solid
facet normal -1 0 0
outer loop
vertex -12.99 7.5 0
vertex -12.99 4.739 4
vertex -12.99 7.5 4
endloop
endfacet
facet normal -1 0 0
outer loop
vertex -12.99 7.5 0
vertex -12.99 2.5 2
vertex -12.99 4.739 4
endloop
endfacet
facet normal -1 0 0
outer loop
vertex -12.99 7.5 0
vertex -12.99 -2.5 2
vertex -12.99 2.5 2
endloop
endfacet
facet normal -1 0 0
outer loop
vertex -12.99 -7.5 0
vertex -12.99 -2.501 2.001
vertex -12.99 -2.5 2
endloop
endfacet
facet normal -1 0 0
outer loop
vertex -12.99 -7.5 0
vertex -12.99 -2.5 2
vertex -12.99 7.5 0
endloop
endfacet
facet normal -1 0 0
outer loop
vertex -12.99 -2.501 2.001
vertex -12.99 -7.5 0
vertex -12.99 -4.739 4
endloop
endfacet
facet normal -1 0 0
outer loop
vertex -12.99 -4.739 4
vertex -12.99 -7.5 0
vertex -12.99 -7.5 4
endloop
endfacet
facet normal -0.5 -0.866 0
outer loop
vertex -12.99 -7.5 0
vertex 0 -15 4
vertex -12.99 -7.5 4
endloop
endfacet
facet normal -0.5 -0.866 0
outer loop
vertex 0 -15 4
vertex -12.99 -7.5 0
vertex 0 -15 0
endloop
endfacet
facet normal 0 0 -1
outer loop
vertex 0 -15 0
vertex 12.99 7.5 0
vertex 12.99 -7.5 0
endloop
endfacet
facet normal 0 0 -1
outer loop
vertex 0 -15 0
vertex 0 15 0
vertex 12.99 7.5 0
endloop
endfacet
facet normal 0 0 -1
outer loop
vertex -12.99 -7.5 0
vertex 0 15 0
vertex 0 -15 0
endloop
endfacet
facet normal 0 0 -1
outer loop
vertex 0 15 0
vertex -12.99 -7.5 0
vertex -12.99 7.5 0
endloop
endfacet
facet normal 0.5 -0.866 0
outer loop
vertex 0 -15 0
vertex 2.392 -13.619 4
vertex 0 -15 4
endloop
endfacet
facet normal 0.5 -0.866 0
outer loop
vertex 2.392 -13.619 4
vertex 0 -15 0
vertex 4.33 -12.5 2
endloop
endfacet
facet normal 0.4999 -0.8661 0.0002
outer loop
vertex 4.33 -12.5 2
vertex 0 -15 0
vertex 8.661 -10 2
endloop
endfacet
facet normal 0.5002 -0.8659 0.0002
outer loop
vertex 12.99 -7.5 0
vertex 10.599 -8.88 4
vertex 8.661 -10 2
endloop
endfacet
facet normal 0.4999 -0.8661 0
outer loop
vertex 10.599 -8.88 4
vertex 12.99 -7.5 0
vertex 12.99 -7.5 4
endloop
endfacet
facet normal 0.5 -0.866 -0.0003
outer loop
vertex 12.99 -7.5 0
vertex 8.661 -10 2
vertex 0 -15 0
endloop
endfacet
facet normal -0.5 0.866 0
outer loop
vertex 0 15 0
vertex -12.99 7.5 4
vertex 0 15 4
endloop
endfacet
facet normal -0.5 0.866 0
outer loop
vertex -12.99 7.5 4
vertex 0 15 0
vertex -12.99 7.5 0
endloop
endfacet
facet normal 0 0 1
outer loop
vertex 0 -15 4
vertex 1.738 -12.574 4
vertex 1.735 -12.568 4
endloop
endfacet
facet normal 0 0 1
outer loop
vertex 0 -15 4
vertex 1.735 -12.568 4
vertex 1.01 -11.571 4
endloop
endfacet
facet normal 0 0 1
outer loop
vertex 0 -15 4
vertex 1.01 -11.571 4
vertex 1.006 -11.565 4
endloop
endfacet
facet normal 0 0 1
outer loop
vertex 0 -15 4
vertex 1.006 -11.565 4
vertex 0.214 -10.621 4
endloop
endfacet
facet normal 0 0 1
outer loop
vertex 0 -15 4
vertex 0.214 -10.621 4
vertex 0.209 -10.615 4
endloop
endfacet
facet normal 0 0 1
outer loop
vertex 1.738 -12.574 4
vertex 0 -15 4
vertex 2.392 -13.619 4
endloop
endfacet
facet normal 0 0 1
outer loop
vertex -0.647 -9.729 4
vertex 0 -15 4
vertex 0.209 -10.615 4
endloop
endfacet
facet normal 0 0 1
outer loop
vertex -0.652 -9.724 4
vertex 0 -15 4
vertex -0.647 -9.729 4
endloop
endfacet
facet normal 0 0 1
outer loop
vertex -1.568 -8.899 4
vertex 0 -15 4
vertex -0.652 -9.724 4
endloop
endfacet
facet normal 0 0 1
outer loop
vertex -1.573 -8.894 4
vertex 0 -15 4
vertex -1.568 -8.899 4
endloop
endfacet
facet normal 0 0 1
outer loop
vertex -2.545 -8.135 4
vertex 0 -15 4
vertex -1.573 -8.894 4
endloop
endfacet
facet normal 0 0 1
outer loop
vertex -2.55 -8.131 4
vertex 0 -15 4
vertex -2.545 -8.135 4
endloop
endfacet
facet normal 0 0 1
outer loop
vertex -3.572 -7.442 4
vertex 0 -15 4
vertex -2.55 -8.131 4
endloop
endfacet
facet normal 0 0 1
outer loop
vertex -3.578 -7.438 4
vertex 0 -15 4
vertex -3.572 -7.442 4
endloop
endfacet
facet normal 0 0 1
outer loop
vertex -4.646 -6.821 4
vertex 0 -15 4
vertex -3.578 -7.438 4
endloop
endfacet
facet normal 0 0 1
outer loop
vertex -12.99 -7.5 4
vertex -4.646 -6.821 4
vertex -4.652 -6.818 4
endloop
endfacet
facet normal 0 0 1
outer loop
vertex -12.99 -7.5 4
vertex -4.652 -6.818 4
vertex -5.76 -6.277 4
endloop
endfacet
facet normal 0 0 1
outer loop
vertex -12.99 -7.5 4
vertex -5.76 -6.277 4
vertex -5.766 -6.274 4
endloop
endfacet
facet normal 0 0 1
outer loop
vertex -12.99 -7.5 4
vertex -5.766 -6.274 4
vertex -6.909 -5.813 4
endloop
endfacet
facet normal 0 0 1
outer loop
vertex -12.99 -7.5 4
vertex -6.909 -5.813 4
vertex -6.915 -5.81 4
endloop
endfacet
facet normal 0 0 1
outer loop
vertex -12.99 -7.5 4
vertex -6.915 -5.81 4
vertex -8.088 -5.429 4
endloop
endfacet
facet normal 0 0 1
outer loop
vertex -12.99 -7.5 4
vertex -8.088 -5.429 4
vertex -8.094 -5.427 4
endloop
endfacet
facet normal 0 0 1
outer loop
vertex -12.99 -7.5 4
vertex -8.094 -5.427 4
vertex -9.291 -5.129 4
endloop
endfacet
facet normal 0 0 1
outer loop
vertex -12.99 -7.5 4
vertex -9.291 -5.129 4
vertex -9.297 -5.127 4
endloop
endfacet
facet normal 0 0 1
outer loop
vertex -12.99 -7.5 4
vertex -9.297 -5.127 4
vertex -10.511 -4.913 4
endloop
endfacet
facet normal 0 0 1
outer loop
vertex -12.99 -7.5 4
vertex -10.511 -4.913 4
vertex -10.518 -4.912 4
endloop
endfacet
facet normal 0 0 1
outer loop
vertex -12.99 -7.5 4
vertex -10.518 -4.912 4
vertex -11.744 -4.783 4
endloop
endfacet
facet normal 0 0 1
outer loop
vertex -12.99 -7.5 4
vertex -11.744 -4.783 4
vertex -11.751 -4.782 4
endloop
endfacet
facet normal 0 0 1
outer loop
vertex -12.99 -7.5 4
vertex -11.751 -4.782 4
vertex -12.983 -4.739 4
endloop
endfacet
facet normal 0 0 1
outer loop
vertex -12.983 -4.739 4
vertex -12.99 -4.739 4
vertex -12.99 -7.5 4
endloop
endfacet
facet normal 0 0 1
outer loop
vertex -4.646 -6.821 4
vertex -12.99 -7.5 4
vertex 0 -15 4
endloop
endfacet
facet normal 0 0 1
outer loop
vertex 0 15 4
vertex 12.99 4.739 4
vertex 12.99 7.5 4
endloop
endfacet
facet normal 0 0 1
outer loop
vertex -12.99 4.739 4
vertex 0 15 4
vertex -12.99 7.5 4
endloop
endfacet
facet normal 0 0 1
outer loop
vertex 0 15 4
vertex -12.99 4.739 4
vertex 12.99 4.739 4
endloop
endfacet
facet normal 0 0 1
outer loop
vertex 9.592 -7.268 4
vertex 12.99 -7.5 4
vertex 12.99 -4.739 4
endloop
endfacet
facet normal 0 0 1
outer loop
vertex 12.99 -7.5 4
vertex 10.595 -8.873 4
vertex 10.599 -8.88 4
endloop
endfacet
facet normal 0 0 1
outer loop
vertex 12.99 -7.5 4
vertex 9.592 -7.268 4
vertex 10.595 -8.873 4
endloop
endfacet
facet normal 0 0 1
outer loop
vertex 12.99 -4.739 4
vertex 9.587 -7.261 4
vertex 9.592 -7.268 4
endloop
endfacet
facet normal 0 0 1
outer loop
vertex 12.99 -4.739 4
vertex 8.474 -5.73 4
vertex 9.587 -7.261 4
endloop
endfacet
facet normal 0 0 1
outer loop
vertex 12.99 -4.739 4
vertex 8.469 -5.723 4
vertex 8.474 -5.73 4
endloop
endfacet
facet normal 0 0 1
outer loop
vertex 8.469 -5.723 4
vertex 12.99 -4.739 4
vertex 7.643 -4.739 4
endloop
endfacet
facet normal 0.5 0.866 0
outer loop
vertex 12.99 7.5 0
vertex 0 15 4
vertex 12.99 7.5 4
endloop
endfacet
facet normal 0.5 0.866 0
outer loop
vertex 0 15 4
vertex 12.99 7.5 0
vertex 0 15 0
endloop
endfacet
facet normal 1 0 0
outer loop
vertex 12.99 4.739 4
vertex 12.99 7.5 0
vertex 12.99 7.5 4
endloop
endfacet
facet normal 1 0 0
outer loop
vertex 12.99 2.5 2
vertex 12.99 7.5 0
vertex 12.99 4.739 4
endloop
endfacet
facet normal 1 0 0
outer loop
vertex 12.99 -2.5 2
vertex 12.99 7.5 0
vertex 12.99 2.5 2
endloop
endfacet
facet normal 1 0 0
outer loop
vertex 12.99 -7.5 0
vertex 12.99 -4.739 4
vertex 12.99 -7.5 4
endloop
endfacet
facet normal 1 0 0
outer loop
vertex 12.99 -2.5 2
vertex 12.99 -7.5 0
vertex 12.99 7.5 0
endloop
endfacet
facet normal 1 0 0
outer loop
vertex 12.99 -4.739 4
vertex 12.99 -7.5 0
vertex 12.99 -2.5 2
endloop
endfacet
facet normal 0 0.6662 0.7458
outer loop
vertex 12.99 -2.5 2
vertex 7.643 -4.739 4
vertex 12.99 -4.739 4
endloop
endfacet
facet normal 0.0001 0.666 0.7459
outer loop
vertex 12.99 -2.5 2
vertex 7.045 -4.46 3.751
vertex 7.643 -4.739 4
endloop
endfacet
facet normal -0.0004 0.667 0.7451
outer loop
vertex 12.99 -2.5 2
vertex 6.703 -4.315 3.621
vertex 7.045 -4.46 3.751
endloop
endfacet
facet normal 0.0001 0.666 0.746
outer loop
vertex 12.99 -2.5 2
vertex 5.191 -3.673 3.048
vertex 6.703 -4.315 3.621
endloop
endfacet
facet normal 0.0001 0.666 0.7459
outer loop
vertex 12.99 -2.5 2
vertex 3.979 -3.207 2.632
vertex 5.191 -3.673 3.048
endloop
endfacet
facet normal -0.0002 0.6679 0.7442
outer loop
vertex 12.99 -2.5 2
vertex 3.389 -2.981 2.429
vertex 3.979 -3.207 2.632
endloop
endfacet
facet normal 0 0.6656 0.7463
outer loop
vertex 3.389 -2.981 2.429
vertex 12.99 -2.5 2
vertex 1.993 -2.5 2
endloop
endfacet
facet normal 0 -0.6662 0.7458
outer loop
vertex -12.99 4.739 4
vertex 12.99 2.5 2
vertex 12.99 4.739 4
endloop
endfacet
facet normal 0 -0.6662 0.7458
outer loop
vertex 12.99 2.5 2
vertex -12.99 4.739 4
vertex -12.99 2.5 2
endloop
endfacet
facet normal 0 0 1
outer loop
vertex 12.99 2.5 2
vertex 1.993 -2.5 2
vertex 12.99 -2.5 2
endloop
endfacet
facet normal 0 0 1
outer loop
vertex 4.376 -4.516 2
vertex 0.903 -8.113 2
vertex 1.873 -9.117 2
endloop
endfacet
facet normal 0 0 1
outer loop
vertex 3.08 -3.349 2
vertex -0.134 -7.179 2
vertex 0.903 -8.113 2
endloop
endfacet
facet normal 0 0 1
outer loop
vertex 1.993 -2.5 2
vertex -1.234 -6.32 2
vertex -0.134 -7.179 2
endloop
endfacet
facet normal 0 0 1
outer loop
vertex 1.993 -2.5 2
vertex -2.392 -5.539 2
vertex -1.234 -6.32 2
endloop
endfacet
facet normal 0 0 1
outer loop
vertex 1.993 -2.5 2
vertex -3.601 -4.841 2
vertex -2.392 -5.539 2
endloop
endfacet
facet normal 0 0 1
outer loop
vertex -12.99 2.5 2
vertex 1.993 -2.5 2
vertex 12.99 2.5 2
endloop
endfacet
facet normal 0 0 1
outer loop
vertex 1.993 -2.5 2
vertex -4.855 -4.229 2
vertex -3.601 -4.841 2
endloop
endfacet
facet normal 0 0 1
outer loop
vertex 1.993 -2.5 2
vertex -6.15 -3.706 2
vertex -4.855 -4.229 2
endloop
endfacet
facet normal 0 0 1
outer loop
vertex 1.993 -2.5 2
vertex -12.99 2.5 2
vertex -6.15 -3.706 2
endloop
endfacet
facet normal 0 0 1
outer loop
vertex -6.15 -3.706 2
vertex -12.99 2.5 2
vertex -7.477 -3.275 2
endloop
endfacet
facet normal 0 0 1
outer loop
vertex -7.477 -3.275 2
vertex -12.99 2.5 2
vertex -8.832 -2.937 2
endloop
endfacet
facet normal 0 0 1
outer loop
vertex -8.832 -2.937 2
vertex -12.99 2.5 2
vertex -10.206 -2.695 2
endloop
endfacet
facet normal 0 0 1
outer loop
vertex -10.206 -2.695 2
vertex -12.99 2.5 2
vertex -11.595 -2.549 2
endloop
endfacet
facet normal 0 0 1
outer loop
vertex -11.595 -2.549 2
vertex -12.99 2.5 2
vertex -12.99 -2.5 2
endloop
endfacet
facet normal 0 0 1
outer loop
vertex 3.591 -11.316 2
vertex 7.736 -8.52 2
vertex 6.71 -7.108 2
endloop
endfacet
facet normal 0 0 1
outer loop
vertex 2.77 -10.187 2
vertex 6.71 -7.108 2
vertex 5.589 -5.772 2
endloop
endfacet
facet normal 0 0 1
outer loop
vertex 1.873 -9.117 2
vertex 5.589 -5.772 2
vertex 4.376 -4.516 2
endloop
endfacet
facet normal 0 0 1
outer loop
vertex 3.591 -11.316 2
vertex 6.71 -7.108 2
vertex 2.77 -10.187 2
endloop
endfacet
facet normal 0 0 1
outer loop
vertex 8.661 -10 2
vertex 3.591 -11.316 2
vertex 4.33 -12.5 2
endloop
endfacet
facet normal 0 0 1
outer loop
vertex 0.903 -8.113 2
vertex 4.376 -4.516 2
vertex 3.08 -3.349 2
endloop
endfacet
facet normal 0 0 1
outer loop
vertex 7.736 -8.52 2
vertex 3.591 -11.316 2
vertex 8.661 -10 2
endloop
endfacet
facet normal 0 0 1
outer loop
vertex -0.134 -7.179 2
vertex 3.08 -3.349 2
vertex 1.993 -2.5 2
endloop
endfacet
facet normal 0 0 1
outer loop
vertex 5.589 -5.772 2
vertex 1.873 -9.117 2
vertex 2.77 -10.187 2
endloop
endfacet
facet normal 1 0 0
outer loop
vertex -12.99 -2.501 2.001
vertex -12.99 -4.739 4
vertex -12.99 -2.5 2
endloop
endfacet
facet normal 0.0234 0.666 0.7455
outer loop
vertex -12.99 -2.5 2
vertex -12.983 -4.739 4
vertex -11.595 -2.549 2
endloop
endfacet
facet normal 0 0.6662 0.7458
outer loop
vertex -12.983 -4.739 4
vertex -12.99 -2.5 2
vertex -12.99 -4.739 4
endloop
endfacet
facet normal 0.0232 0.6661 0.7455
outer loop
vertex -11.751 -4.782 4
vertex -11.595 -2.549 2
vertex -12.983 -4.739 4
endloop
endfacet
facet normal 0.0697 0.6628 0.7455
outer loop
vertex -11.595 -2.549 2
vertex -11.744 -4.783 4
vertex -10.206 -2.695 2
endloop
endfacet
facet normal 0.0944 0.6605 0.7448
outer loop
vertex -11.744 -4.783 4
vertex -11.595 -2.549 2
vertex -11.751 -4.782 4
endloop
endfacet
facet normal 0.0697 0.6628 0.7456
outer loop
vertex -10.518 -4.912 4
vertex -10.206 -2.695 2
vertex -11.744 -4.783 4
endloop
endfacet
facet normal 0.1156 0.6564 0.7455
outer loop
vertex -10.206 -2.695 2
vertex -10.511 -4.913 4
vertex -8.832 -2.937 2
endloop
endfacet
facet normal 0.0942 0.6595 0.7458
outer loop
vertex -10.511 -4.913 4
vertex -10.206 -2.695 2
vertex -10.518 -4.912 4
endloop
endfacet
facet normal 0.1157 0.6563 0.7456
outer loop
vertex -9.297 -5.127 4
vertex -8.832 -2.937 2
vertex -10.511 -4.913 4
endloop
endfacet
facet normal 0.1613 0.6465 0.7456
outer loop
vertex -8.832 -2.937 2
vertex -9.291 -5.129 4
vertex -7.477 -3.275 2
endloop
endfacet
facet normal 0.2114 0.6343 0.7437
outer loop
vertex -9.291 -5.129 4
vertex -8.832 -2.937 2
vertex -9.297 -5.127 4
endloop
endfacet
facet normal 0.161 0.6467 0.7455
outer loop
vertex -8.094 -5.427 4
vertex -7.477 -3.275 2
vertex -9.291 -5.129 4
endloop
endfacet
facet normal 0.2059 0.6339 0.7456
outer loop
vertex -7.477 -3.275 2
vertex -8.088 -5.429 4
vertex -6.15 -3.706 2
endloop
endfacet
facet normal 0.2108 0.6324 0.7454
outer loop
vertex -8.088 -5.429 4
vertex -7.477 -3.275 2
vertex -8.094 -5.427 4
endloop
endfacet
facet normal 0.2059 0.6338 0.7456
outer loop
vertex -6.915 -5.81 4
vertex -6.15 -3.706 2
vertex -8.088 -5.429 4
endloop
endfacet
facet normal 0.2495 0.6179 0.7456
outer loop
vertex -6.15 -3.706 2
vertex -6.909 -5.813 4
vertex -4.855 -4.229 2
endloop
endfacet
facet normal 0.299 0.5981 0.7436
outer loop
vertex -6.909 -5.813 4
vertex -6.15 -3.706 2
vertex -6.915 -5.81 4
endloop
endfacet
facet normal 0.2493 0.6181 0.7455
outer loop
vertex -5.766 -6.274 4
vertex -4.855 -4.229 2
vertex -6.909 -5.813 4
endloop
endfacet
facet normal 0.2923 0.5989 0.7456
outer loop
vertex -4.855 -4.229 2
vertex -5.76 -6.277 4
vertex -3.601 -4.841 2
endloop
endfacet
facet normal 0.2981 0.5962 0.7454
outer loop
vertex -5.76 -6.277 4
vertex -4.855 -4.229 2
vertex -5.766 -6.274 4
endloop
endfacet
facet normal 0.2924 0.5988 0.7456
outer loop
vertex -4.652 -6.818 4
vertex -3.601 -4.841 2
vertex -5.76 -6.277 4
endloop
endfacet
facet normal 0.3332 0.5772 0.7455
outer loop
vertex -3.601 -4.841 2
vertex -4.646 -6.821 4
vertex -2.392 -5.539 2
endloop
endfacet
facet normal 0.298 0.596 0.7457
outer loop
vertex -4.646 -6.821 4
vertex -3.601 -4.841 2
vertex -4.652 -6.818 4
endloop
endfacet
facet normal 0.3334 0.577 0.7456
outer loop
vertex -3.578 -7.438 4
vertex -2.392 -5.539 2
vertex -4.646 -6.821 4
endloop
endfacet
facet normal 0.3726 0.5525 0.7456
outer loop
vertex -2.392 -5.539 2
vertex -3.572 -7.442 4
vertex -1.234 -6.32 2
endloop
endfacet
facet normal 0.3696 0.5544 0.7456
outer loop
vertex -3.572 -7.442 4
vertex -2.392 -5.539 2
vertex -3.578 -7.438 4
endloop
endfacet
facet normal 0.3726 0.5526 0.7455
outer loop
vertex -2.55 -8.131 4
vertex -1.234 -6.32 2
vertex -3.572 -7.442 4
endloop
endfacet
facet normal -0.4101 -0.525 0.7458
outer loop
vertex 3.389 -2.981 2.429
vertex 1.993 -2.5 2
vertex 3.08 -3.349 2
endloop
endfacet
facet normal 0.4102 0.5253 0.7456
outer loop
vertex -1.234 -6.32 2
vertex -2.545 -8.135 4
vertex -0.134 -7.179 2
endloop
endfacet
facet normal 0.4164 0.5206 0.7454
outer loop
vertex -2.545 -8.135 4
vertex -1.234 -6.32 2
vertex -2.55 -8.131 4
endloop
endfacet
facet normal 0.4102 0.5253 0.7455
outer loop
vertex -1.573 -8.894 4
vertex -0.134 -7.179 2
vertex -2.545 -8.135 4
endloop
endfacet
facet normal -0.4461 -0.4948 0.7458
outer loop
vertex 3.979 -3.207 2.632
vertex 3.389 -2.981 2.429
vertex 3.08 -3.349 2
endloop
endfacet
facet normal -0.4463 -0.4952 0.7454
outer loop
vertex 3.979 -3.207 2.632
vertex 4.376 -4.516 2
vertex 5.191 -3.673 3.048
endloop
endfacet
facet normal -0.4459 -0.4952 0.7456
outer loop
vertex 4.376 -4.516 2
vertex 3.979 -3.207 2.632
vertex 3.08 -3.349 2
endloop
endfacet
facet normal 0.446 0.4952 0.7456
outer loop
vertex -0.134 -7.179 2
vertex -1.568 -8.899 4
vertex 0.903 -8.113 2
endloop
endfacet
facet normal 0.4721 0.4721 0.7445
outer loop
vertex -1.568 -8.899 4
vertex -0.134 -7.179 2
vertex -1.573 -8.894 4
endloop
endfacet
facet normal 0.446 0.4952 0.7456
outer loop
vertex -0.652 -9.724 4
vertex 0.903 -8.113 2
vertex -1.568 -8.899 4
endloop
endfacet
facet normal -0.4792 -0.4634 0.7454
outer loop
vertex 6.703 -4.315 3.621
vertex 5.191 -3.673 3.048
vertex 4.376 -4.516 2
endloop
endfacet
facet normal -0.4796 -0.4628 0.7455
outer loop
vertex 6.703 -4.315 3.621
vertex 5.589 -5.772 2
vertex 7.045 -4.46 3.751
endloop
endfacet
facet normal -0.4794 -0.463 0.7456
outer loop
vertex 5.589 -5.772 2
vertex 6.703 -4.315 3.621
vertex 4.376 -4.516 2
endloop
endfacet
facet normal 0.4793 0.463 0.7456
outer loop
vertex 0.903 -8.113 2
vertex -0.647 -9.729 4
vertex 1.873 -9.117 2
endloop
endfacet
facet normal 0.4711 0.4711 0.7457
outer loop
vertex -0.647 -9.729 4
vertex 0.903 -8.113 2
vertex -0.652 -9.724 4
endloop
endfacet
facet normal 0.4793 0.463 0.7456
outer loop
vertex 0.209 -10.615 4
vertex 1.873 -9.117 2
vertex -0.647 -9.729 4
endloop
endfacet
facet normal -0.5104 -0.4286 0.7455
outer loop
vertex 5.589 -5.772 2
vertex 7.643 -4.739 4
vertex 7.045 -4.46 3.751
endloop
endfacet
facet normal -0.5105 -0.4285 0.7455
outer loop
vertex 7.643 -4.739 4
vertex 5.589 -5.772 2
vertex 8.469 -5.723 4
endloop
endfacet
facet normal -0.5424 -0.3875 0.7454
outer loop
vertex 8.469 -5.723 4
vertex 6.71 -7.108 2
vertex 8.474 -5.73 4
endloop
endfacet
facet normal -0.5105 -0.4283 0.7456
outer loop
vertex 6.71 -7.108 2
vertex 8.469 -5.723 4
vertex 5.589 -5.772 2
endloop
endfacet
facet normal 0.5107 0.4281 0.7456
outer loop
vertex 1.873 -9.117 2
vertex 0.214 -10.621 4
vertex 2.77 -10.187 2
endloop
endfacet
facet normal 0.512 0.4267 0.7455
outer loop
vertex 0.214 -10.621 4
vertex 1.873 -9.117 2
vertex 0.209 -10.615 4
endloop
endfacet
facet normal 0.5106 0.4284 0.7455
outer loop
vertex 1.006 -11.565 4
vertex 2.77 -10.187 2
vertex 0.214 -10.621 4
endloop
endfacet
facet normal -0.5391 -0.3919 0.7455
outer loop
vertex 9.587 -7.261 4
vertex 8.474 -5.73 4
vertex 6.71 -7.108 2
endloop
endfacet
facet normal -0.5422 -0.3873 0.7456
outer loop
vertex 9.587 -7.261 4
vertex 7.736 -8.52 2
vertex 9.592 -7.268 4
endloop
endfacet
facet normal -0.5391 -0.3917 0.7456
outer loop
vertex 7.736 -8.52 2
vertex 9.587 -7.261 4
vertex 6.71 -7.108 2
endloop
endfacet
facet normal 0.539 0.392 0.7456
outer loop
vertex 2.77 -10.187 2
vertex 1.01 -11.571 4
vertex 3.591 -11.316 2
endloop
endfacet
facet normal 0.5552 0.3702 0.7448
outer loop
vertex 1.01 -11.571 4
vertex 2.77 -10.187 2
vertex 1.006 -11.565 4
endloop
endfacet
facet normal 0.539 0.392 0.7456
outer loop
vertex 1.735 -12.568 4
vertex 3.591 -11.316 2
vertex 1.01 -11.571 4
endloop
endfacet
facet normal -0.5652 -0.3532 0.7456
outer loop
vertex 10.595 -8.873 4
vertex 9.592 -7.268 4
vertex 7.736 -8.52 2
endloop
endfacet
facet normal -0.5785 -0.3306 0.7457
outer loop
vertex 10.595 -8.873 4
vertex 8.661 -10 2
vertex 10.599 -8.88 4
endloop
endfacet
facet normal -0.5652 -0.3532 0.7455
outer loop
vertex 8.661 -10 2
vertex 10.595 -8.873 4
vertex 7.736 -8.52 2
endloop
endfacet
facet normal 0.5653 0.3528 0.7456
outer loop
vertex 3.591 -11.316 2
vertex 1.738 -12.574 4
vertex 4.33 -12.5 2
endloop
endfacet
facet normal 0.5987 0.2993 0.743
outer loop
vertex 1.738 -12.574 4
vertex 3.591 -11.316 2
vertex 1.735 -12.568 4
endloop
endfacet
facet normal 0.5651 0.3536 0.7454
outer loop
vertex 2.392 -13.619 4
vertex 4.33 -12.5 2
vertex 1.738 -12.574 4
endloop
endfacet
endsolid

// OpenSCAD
rotate(a = [0, 0, -90])
difference()
{
    color("Peru", 1.0)
    {
        // hexagon base
        linear_extrude(height = 4, center = false, convexity = 10, twist = 0)
        circle(r=15, $fn=6);
    }
    
    color("Blue", 1.0)
    {
        // canal shape
        rotate([90,0,0])
        linear_extrude(height=30, center=true, convexity = 10, twist = 0)
        polygon(points=[[-4.75,4.01],[4.75,4.01],[2.5,2], [-2.5,2]]);
    }
    
    color("Blue", 1.0)
    {
        // canal shape
        translate([22.5,-12.99,0])
        rotate_extrude(angle=360, convexity=10, $fn=90)
        translate([-22.5,0,0])
        polygon(points=[[-4.75,4.01],[4.75,4.01],[2.5,2], [-2.5,2]]);
    }
    
}
